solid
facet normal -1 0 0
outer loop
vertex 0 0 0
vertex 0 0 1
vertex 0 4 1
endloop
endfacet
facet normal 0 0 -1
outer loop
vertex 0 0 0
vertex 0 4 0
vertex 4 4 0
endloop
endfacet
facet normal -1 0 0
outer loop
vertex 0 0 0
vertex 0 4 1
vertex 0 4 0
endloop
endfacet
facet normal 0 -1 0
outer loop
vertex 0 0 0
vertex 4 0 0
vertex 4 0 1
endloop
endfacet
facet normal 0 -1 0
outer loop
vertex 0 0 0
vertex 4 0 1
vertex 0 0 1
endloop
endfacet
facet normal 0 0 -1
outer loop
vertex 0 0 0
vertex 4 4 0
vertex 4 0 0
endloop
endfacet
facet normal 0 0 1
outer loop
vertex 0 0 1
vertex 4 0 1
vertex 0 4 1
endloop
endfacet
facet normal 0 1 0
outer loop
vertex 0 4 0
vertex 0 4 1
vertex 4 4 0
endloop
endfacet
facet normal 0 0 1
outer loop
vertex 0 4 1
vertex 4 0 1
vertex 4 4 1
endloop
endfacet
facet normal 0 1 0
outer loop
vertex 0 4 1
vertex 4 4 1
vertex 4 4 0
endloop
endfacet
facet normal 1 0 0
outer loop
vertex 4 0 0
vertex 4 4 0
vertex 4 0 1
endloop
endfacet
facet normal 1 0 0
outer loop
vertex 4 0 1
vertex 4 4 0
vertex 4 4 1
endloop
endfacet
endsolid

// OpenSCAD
/* Warning, this is a very basic generator with a lot of approximation 
input data : [VQFN, 7NX, 4x4x1.0mm, 16, , C, C04-00403C]
generated by com.zoubworld.electronics.cad.model3d.Basic
Date : Sun Feb 15 10:50:48 CET 2026
*/

//body
color("black")
translate([0,0,0])
cube([4.0,4.0,1.0], center=false);
